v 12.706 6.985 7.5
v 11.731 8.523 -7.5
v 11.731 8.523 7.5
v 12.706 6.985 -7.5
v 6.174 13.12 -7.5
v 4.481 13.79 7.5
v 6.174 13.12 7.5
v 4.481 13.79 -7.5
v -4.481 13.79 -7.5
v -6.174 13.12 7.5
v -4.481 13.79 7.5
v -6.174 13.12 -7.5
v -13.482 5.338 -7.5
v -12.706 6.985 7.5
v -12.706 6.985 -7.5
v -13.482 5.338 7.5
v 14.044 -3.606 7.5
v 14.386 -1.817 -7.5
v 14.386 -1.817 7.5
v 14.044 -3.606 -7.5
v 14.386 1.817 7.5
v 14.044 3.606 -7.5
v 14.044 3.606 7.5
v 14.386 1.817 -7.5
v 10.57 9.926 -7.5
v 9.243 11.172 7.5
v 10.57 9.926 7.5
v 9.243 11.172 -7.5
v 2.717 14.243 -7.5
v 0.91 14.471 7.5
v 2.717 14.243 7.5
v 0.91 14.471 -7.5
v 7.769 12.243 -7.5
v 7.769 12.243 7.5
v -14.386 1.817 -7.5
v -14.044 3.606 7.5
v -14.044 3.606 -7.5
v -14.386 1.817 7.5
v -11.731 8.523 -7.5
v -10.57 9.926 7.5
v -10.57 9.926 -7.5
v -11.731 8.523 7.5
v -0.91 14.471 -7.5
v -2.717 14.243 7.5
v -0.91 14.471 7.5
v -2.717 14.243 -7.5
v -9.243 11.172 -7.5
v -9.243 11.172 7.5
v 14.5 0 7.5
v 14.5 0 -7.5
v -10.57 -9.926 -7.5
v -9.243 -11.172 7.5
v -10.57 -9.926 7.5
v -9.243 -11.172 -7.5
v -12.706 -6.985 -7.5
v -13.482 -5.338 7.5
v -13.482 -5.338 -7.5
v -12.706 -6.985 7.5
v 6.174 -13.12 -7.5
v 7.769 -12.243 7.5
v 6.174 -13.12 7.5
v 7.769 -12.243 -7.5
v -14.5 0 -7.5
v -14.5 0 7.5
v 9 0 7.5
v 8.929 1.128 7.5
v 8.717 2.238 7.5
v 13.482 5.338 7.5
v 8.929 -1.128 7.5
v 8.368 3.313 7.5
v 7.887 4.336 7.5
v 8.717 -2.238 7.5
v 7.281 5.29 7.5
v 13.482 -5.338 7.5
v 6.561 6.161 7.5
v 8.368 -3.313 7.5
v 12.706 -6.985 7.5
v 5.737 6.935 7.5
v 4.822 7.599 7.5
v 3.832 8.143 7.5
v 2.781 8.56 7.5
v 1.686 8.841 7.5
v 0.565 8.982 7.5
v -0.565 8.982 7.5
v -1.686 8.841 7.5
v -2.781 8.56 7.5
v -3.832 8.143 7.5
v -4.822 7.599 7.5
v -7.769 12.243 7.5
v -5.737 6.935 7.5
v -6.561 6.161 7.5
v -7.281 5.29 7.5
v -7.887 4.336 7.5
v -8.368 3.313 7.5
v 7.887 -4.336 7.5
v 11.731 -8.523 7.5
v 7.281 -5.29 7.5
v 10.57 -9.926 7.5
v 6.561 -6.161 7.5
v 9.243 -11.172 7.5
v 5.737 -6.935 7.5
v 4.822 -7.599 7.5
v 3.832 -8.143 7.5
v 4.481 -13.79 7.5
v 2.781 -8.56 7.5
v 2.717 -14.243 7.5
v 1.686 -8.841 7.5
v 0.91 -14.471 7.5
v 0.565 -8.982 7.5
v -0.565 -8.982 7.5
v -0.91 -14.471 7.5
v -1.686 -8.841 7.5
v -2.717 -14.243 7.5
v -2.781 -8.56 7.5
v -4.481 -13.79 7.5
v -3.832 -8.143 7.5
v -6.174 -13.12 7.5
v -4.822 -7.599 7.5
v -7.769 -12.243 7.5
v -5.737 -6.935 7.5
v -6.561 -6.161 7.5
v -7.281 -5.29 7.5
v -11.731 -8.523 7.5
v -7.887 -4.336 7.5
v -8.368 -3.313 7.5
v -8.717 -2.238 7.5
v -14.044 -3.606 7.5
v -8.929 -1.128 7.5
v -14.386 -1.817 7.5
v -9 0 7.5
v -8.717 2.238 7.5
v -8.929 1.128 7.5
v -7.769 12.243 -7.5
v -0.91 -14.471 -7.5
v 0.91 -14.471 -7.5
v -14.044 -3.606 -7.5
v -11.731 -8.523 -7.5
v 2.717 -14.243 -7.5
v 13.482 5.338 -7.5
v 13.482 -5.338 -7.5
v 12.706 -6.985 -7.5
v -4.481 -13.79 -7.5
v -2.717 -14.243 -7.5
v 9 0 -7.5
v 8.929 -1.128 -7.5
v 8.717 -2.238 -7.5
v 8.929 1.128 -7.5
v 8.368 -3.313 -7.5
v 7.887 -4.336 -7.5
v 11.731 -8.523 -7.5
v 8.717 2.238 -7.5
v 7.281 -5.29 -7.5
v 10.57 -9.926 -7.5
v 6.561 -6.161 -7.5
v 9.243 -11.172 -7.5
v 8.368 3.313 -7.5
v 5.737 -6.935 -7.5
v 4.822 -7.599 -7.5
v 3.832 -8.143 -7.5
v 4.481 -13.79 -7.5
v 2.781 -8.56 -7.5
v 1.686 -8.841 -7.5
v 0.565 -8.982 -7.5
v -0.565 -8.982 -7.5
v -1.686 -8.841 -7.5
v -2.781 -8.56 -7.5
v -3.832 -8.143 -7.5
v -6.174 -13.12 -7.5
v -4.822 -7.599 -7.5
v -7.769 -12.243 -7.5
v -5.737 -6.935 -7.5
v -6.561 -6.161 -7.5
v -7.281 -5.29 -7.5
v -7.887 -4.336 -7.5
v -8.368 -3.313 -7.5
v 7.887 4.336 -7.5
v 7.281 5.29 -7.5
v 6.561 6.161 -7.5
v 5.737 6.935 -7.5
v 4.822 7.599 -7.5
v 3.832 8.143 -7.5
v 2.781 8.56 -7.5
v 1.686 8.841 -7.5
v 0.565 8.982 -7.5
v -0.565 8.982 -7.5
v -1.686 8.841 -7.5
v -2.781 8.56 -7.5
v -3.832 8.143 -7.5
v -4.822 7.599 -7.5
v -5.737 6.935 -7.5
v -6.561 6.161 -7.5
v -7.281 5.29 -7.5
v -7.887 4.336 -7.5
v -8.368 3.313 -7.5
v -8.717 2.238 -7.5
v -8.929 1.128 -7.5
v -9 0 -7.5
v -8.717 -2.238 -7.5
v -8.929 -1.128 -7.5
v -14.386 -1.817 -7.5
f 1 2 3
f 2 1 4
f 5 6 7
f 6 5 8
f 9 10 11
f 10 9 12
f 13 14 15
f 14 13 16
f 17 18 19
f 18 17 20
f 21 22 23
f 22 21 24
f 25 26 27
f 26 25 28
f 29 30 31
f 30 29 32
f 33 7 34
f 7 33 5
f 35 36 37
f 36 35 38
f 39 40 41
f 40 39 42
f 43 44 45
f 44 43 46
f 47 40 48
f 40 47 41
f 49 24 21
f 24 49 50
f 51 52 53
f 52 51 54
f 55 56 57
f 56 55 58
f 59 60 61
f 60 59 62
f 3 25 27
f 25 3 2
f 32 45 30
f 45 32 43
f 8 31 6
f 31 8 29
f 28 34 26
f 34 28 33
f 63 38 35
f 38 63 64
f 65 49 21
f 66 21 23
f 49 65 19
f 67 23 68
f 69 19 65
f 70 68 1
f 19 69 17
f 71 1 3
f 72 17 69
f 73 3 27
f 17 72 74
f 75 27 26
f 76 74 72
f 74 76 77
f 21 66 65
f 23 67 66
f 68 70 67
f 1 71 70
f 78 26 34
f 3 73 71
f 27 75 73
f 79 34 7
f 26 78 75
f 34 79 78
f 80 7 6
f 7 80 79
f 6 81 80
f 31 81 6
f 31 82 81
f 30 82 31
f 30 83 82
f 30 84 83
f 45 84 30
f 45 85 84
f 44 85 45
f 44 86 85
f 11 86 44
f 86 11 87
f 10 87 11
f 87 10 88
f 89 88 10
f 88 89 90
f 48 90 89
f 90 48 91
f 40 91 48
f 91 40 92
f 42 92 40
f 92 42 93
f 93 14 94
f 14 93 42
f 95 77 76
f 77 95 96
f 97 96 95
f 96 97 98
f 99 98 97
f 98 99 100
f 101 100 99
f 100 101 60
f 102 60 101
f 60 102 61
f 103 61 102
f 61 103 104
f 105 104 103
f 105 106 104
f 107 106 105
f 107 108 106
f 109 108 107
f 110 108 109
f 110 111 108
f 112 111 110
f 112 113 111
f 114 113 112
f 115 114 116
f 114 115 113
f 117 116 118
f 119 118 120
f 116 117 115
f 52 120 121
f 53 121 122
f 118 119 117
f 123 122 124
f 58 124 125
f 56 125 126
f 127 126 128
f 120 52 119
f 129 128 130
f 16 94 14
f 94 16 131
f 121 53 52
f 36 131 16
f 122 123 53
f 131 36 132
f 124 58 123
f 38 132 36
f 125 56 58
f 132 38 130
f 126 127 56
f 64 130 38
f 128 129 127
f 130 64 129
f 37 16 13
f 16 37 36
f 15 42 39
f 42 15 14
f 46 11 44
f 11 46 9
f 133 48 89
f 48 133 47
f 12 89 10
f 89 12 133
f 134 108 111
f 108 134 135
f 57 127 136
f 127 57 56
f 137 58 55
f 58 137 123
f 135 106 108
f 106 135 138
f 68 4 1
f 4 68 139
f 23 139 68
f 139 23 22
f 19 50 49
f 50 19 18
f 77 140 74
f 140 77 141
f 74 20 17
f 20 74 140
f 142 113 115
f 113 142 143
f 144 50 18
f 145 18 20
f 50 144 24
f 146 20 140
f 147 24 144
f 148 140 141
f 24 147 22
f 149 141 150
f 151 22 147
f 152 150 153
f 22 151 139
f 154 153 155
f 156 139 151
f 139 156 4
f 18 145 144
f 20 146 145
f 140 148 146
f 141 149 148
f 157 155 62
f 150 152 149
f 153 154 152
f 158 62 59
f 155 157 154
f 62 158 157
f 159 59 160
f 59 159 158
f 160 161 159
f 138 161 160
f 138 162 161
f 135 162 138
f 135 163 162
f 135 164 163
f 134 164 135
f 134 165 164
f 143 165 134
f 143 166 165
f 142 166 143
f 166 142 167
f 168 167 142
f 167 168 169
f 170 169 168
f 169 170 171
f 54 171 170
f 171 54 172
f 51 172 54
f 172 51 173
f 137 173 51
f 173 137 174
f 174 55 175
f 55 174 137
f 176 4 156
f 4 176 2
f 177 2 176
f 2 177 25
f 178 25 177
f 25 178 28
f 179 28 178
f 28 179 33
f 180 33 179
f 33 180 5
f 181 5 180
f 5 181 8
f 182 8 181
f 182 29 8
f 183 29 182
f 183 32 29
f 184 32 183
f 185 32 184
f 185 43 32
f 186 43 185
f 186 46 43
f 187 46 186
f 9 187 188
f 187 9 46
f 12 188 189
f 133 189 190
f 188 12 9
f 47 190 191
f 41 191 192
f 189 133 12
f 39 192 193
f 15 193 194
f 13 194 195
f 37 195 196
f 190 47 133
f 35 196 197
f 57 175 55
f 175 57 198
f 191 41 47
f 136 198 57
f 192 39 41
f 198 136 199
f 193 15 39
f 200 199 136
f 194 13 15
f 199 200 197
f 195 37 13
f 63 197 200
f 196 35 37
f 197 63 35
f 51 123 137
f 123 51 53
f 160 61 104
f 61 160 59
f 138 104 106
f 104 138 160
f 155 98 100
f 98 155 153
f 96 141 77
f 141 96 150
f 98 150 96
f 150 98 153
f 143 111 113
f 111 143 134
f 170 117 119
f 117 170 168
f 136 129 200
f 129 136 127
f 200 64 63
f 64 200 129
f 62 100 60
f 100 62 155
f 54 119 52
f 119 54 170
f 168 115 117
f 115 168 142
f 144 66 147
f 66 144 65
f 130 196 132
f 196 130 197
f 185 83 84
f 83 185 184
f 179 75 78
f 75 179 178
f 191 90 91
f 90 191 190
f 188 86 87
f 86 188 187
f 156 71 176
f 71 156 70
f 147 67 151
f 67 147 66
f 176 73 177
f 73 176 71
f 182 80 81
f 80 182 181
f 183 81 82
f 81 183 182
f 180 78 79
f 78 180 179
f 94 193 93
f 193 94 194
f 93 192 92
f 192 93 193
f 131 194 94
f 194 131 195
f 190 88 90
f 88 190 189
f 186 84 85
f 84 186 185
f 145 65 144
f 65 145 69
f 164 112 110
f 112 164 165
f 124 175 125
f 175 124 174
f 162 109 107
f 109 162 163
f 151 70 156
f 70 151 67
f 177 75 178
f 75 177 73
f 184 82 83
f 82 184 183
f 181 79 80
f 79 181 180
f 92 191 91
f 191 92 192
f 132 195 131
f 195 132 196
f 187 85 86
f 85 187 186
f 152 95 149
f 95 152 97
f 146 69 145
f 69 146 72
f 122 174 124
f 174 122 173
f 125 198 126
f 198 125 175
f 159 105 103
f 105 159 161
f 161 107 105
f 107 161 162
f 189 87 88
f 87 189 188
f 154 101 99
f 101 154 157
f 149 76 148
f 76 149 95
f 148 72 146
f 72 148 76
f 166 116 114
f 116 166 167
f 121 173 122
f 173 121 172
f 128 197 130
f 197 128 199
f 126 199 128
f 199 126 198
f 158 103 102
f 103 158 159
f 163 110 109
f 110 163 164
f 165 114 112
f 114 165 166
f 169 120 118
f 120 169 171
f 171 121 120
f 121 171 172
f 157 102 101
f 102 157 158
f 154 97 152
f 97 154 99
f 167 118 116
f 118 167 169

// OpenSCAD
$fn = 50;


difference() {
	union() {
		translate(v = [0, 0, -7.5000000000]) {
			cylinder(h = 15, r = 14.5000000000);
		}
	}
	union() {
		translate(v = [0, 0, -100.0000000000]) {
			cylinder(h = 200, r = 9);
		}
	}
}
